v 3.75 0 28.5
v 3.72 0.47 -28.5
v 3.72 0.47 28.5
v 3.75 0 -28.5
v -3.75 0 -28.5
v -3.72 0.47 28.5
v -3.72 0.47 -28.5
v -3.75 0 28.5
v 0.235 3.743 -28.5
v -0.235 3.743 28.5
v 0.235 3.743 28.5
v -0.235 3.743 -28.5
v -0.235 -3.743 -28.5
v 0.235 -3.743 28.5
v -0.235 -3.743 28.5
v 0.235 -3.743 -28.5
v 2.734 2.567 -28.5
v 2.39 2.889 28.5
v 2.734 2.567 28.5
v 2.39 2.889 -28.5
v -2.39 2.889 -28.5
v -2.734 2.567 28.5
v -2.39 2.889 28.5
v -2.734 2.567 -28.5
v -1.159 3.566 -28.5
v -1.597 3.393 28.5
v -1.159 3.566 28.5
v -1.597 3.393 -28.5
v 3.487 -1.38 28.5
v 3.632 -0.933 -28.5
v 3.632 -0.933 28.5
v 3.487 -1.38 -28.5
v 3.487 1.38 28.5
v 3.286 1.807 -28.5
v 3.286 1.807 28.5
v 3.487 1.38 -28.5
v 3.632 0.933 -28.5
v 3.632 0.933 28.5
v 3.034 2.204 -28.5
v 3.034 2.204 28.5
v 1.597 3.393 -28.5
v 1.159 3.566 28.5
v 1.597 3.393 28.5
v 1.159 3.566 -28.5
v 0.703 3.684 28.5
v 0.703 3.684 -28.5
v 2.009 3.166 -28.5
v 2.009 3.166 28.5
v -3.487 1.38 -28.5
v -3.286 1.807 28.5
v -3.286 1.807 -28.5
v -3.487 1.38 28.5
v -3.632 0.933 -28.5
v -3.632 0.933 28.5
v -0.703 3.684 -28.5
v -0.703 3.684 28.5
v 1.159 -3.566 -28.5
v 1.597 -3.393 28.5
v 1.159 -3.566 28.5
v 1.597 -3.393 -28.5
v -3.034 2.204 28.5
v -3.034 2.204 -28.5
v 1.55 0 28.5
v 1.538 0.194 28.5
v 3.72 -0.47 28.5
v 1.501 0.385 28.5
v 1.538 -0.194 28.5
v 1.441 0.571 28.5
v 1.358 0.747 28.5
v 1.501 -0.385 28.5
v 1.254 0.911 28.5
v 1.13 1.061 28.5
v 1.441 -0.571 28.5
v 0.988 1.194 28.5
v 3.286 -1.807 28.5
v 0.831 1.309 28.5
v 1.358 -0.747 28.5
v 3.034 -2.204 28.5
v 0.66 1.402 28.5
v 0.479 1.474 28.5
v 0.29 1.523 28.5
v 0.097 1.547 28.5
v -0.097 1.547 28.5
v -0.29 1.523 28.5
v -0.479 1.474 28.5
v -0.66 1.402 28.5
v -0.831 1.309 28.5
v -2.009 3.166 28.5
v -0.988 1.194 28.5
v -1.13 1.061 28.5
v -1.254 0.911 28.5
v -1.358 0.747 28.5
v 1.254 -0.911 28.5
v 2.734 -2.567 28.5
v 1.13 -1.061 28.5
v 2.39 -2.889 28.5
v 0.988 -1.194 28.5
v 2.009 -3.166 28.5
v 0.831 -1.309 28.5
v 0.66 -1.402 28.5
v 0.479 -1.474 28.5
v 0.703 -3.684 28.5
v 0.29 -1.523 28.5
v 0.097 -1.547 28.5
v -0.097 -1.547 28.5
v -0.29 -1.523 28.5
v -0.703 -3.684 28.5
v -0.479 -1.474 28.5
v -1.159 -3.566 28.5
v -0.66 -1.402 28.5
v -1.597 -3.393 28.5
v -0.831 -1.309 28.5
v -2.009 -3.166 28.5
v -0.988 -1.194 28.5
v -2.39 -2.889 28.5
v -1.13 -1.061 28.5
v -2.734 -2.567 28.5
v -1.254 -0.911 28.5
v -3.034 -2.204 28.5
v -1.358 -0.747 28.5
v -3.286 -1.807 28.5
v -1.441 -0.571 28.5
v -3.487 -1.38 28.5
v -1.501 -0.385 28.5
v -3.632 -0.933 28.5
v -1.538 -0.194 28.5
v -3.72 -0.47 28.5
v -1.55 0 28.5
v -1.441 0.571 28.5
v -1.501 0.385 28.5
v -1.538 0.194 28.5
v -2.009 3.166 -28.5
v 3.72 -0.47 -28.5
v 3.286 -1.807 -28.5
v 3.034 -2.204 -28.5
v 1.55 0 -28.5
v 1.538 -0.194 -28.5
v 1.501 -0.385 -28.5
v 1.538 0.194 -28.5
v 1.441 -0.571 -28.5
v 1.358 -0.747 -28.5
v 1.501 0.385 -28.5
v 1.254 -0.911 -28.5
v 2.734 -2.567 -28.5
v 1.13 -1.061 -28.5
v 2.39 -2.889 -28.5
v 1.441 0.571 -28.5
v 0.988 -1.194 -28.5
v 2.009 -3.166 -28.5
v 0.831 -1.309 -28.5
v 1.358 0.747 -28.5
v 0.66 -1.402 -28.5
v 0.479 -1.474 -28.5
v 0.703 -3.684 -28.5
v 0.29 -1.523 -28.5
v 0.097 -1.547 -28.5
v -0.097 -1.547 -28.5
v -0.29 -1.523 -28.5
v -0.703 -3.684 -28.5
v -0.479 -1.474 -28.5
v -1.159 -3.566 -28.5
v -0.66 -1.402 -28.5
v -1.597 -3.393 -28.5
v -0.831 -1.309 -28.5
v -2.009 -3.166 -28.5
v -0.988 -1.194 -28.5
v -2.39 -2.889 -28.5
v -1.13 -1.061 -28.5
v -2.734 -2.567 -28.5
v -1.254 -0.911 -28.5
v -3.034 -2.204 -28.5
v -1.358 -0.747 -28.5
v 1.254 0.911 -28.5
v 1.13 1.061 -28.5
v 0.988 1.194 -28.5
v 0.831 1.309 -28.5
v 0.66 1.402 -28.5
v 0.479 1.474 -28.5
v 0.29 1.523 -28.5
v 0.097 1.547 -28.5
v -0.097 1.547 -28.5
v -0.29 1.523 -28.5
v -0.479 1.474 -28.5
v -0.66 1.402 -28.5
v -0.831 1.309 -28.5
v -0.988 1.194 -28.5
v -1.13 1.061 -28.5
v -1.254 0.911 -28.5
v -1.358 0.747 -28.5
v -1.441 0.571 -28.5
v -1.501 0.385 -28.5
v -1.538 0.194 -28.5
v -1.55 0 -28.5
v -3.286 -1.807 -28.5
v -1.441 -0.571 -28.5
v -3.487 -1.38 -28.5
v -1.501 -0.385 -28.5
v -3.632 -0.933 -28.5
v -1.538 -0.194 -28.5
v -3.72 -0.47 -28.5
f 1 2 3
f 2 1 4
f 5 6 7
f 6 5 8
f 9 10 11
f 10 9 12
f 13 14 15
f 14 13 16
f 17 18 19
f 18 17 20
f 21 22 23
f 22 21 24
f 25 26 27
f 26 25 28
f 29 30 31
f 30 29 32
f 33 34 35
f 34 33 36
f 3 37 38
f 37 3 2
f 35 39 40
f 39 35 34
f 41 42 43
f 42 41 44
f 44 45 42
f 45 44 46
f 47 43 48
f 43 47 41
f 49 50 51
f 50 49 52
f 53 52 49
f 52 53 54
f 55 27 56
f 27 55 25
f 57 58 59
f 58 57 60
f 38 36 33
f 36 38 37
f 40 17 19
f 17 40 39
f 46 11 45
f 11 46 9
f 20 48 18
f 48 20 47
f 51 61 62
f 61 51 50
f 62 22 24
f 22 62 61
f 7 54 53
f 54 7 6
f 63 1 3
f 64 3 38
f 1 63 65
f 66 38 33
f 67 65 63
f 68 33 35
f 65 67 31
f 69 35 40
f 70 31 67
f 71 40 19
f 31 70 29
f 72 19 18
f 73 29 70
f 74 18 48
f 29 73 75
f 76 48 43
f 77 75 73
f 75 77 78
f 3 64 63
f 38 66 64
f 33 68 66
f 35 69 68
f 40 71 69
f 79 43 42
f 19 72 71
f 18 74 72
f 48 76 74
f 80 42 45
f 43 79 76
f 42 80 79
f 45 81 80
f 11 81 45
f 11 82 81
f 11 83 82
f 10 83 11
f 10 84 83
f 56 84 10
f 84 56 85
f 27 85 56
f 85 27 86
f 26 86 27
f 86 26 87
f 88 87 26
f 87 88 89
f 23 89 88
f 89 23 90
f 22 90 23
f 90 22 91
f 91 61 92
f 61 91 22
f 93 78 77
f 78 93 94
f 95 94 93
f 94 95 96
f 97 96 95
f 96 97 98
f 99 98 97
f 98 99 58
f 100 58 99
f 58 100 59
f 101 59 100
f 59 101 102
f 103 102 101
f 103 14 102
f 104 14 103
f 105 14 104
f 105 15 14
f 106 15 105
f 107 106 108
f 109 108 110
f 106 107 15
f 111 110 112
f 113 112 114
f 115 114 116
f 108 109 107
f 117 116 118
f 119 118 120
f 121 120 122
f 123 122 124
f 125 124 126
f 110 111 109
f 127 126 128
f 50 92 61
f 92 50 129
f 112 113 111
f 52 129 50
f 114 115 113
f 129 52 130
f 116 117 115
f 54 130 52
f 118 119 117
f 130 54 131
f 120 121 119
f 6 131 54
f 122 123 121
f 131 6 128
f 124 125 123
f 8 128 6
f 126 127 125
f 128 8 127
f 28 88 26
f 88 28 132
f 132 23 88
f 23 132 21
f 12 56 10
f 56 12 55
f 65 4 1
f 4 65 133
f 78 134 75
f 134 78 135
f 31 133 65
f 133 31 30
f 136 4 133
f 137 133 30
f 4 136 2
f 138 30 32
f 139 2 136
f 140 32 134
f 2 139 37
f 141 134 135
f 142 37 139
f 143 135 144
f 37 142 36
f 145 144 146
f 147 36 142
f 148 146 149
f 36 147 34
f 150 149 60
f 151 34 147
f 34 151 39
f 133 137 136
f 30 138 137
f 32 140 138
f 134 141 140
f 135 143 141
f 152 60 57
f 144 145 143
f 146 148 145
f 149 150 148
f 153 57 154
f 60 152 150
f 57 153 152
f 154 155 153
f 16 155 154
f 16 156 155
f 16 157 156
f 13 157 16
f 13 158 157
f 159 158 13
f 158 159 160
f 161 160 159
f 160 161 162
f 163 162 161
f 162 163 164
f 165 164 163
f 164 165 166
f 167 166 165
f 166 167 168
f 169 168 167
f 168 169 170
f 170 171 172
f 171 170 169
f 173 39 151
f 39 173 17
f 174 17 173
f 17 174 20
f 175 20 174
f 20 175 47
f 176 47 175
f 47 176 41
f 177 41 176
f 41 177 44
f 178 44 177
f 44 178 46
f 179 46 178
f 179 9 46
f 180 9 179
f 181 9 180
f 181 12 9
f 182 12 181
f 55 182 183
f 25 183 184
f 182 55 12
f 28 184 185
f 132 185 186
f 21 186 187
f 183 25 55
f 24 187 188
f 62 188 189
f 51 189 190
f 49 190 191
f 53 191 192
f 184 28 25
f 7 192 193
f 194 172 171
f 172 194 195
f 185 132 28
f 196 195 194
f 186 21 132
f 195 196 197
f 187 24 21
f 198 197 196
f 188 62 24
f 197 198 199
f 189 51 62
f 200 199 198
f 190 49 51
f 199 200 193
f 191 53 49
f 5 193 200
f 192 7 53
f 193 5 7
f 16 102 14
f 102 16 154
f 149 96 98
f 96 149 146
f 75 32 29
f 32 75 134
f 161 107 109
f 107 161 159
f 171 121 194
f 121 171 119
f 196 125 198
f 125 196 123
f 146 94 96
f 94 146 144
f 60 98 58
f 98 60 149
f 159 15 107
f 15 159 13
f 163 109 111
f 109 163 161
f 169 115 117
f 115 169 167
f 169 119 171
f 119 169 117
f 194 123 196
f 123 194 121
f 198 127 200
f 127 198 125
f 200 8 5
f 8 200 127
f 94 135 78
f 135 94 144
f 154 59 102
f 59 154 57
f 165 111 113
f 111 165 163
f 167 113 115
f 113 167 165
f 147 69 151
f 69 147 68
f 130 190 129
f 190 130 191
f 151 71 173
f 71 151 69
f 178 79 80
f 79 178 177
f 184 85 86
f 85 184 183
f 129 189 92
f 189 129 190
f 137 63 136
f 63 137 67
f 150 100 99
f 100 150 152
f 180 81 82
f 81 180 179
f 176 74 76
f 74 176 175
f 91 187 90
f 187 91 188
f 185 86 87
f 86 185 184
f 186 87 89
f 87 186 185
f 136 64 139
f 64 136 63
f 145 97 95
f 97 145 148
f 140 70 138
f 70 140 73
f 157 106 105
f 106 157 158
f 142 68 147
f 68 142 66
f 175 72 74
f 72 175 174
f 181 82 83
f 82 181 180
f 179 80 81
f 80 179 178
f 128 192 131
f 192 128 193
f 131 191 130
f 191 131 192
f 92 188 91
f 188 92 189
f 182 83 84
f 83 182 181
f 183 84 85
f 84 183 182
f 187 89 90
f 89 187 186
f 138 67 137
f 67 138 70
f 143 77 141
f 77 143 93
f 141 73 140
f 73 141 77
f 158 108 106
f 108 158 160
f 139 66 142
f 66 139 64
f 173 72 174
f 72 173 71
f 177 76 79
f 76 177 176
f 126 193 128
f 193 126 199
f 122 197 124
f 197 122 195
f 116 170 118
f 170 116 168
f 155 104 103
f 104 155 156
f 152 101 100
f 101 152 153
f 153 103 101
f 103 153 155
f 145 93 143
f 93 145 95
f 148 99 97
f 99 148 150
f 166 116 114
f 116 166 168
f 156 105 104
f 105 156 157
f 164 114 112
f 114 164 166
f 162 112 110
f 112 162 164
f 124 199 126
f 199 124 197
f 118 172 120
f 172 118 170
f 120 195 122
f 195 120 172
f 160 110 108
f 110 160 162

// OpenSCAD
$fn = 50;


difference() {
	union() {
		translate(v = [0, 0, -28.5000000000]) {
			cylinder(h = 57, r = 3.7500000000);
		}
	}
	union() {
		translate(v = [0, 0, -100.0000000000]) {
			cylinder(h = 200, r = 1.5500000000);
		}
	}
}
